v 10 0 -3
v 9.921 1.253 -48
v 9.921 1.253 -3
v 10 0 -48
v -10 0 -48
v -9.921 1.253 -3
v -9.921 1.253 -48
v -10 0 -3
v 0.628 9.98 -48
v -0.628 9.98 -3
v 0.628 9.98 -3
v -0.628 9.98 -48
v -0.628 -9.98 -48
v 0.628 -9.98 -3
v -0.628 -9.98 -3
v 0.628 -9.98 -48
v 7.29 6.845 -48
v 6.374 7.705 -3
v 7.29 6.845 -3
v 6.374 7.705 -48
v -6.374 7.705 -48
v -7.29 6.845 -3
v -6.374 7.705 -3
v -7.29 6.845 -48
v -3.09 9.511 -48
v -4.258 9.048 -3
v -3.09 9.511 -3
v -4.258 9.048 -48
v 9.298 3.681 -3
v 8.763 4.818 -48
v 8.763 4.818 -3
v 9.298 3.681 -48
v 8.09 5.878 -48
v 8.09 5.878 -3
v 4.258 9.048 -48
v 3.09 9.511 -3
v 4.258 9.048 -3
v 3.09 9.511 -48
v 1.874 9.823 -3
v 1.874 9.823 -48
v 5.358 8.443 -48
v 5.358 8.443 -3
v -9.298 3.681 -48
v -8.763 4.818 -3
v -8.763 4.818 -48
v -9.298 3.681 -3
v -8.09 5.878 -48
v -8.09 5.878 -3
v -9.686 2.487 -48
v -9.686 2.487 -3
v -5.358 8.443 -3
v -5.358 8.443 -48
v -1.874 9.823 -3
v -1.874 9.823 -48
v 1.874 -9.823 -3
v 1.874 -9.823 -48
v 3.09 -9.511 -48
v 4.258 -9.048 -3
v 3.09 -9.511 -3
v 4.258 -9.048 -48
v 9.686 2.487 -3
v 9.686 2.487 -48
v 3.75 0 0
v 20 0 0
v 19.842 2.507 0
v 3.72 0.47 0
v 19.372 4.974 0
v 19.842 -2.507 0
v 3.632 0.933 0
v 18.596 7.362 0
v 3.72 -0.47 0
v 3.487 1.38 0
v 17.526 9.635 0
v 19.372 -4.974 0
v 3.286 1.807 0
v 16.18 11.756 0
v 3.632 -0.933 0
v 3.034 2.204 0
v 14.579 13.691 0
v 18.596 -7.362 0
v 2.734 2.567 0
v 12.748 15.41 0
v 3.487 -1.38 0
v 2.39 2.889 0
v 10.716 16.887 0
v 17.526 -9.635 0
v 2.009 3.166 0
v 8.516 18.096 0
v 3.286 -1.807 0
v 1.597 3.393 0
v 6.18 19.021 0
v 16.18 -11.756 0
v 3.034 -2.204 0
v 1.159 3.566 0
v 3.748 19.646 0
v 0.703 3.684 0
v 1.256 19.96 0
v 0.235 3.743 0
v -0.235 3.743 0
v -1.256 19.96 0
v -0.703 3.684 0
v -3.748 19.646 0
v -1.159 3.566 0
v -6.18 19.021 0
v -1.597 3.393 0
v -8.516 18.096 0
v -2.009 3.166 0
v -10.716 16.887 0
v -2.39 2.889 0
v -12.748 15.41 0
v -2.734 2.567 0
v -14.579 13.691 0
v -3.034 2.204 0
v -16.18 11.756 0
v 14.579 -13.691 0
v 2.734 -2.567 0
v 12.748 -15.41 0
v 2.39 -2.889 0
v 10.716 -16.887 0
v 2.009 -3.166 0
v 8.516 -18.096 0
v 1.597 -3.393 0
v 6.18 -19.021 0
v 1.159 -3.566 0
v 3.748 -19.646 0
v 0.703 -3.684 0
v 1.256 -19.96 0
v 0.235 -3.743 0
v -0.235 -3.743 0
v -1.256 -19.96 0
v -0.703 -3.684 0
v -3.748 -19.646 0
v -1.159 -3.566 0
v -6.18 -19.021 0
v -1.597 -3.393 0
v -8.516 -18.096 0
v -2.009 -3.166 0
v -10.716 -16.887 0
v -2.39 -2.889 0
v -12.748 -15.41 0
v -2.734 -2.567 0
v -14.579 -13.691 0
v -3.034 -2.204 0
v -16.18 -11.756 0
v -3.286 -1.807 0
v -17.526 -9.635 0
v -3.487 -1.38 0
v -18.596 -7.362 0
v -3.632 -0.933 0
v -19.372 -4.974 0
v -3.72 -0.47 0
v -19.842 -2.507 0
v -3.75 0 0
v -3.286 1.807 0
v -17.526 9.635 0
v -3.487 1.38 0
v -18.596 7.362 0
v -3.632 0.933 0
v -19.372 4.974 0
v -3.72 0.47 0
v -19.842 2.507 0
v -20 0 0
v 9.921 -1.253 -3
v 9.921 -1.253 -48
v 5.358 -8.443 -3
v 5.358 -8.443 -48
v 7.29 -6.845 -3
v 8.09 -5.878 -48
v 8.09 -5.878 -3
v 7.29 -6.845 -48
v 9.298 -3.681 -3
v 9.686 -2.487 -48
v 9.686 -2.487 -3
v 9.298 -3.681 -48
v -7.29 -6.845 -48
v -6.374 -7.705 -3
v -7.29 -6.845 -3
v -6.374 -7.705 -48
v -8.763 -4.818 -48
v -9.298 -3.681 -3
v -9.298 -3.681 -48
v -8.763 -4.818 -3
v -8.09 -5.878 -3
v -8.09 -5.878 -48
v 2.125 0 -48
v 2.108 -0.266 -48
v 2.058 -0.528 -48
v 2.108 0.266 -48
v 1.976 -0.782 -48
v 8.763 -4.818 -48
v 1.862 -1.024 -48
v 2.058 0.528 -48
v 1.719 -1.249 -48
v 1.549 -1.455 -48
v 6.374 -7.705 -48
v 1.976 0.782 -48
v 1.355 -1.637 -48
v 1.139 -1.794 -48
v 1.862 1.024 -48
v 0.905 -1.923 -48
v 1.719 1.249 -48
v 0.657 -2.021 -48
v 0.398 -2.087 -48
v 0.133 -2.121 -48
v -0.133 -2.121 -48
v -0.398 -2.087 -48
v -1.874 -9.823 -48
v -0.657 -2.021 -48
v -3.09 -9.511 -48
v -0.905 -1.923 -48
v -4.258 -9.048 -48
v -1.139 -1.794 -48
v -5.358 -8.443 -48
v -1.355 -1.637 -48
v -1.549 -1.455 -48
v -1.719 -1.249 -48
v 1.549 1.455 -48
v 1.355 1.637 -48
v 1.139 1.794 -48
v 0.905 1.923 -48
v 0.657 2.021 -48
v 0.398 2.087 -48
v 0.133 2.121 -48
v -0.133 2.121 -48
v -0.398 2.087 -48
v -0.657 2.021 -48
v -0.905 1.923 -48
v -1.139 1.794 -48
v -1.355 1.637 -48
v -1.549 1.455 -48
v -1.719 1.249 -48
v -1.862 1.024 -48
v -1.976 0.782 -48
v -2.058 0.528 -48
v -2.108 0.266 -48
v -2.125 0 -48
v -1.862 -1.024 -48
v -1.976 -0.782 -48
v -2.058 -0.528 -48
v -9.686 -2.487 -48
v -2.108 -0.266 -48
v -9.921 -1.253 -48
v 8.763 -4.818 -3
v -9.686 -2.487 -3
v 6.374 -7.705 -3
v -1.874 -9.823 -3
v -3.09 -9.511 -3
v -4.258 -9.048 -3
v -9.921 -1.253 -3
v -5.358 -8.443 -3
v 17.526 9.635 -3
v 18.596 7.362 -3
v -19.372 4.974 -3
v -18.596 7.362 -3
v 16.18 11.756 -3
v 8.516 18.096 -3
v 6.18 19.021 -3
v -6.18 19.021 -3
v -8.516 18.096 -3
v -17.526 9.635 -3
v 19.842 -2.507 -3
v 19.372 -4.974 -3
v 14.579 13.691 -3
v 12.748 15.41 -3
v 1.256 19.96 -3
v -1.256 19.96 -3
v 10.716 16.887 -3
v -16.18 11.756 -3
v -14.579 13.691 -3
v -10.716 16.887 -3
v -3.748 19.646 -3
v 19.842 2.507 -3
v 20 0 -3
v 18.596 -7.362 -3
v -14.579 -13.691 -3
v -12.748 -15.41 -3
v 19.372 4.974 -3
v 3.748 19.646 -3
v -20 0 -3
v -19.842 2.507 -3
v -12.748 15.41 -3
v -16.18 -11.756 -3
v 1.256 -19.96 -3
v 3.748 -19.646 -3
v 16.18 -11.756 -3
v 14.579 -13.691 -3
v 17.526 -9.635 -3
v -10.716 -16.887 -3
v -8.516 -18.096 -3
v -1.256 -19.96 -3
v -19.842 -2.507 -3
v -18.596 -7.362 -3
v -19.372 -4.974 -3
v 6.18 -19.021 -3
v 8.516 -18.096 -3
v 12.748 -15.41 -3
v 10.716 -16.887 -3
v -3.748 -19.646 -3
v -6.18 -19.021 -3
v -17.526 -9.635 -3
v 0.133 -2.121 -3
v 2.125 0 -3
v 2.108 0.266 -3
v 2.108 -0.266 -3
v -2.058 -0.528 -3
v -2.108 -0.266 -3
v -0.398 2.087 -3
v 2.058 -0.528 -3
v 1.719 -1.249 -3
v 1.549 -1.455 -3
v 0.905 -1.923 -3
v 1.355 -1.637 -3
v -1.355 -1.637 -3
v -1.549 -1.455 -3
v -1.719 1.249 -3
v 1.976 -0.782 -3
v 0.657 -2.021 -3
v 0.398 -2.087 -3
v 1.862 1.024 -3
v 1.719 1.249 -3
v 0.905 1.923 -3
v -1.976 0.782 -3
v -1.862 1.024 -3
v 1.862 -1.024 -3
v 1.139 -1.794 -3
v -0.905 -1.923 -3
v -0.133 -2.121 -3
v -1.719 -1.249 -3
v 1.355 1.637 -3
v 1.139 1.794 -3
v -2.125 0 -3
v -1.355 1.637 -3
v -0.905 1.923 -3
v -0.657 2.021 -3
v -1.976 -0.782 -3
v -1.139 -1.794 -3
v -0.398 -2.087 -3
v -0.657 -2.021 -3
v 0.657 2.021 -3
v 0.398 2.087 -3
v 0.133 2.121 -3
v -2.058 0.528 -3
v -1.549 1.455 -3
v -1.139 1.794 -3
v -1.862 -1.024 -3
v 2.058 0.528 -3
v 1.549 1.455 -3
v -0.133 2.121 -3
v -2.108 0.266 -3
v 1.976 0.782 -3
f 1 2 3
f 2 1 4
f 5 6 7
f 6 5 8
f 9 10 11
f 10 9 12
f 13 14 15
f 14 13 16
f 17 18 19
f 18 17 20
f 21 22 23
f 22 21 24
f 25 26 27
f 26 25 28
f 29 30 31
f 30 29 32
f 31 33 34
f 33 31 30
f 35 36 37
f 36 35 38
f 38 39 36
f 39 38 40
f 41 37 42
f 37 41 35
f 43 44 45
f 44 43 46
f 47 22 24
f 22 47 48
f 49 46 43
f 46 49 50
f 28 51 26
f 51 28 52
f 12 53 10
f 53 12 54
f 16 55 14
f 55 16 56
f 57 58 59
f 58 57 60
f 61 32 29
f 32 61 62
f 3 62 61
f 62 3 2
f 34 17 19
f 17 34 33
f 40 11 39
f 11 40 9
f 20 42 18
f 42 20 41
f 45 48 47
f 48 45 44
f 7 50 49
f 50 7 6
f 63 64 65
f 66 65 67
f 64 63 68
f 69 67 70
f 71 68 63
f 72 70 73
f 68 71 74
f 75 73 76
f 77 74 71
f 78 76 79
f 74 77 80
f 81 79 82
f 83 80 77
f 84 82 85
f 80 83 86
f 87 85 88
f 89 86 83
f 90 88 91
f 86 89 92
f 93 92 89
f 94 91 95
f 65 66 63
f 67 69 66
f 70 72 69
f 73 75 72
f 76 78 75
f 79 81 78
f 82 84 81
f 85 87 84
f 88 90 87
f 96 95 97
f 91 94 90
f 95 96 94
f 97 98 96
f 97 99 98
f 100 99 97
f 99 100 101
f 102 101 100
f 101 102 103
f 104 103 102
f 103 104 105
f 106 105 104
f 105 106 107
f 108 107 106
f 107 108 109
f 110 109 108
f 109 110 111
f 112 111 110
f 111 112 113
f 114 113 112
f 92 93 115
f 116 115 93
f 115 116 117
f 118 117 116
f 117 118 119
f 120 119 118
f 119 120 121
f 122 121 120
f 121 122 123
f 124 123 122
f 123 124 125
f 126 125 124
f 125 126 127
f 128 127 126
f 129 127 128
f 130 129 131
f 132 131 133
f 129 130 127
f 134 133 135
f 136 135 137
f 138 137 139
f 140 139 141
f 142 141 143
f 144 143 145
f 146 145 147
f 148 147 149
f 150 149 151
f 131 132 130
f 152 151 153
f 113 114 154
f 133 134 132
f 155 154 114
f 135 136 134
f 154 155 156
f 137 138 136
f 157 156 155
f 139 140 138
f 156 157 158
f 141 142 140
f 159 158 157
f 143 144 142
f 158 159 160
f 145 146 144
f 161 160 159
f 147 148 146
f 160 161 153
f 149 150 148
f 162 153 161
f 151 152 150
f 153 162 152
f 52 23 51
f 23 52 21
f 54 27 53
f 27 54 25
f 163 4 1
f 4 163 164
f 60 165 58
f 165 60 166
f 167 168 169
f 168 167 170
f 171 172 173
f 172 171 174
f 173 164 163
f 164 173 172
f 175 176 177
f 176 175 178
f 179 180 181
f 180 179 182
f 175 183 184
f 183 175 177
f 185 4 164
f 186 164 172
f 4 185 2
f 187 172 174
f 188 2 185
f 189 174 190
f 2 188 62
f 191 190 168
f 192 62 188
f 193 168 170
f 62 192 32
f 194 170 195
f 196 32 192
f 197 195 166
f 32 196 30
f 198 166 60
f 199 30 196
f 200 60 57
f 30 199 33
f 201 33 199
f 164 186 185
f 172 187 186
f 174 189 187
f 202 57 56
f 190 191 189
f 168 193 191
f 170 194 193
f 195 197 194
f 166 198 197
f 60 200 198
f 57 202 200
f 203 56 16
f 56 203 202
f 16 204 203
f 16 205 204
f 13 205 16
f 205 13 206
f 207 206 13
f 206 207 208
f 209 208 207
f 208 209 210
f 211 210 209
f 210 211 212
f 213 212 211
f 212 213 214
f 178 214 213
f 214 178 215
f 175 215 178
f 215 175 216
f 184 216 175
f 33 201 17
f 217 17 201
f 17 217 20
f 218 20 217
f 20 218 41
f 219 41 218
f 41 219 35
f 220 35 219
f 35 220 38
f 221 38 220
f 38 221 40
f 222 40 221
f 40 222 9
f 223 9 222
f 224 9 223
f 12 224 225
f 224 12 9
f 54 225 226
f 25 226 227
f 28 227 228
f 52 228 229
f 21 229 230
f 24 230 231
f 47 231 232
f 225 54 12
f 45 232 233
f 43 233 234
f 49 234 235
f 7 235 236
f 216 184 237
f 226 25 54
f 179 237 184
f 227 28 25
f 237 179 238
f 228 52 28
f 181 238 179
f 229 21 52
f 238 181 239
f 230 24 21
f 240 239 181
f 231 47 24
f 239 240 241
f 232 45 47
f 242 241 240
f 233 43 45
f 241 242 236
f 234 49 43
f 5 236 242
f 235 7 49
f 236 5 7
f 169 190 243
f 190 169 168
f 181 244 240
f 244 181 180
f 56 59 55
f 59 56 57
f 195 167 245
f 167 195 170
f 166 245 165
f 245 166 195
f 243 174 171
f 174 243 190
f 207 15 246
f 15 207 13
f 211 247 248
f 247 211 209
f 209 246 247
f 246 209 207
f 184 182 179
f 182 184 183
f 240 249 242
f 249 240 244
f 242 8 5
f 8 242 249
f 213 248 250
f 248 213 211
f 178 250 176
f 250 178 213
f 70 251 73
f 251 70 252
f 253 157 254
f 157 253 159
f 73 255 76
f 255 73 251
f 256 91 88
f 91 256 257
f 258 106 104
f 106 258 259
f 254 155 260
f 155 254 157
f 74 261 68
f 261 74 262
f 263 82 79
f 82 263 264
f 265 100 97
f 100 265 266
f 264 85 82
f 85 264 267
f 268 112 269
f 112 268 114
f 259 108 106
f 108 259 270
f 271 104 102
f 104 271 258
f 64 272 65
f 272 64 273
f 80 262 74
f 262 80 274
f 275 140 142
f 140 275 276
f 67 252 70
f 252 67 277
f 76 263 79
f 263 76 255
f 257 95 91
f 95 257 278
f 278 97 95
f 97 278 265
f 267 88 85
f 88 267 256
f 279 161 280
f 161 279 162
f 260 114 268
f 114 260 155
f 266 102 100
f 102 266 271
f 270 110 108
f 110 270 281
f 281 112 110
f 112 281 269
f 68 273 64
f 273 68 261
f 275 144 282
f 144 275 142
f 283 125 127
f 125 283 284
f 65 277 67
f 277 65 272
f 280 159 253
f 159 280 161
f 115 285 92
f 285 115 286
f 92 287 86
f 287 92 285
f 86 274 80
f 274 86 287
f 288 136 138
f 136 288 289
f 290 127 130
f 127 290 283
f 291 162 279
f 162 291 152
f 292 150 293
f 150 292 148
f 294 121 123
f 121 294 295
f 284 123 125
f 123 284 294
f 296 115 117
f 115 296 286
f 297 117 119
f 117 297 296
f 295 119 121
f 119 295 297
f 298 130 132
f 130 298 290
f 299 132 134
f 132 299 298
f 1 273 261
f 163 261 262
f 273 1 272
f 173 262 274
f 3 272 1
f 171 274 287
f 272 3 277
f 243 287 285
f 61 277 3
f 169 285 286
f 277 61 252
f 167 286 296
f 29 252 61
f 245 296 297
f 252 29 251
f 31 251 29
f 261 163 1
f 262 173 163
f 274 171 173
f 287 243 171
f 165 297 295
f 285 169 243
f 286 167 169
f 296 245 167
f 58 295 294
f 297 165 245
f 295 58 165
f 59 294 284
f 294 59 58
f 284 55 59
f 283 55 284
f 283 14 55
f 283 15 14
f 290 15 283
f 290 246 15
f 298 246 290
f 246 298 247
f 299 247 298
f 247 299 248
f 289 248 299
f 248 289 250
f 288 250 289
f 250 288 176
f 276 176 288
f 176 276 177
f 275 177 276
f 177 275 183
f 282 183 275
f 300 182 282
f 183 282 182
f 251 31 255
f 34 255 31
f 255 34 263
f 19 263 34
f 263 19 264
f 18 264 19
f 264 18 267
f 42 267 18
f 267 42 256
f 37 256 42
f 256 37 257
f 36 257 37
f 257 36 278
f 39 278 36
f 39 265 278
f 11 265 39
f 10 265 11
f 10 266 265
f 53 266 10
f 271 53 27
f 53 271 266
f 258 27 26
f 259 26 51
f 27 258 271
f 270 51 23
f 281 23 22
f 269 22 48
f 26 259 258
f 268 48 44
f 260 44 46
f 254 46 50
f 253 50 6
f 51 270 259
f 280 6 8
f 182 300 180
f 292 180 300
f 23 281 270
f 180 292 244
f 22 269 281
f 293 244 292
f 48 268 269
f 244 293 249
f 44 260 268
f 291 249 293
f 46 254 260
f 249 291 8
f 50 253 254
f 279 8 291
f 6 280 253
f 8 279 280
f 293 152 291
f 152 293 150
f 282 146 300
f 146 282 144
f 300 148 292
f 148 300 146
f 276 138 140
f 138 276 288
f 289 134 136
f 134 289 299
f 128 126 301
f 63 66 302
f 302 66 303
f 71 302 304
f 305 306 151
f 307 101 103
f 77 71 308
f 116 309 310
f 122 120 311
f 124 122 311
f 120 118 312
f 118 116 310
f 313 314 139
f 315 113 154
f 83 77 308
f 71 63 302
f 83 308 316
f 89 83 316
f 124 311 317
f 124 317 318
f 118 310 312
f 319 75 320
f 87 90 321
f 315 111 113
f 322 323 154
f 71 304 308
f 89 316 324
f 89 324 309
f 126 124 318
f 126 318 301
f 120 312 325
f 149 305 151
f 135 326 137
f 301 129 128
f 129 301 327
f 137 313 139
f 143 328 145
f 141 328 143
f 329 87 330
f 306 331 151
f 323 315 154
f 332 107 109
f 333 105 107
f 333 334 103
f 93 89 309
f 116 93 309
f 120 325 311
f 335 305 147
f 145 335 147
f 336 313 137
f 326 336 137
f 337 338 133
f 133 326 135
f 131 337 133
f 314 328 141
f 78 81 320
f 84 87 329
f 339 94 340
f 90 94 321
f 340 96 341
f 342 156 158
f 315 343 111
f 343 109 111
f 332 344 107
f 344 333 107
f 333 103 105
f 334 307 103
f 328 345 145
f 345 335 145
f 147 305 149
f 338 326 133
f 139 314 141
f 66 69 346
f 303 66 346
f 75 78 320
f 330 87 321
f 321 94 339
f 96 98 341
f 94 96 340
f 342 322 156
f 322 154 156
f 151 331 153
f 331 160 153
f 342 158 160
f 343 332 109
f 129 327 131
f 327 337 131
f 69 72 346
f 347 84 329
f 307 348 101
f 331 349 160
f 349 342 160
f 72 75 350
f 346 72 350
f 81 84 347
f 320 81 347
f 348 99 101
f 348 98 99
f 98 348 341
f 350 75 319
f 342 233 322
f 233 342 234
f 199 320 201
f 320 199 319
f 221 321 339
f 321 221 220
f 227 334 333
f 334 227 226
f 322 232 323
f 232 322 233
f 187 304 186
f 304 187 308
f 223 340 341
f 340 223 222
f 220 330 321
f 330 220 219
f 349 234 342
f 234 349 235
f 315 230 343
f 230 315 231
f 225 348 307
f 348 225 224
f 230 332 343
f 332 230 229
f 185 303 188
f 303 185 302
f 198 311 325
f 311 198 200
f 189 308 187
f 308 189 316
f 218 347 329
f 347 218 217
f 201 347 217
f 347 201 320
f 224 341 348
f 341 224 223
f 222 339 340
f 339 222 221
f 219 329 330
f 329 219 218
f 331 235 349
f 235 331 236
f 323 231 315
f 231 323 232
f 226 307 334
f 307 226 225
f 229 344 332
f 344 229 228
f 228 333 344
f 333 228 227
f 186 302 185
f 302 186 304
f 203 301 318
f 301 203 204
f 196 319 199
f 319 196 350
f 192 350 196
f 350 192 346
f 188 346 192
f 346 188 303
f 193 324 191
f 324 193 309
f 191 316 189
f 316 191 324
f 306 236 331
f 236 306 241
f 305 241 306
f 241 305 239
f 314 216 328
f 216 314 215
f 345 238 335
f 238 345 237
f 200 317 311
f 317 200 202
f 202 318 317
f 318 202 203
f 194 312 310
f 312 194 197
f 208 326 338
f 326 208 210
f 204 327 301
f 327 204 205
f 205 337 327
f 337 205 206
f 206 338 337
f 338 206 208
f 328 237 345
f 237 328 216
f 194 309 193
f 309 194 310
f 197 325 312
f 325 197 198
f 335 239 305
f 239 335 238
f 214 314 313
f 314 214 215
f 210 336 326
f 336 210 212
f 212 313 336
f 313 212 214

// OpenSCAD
$fn = 50;


difference() {
	union() {
		translate(v = [0, 0, -48.0000000000]) {
			cylinder(h = 48, r = 10.0000000000);
		}
		translate(v = [0, 0, -3.0000000000]) {
			cylinder(h = 3, r = 20.0000000000);
		}
	}
	union() {
		translate(v = [0, 0, 0]) {
			rotate(a = [0, 0, 0]) {
				difference() {
					union() {
						#translate(v = [0, 0, -48.0000000000]) {
							cylinder(h = 48, r = 2.0000000000);
						}
						#translate(v = [0, 0, -3]) {
							cylinder(h = 3, r1 = 2.1250000000, r2 = 3.7500000000);
						}
						#translate(v = [0, 0, -48.0000000000]) {
							cylinder(h = 48, r = 2.1250000000);
						}
						#translate(v = [0, 0, -48.0000000000]) {
							cylinder(h = 48, r = 2.0000000000);
						}
					}
					union();
				}
			}
		}
	}
}
